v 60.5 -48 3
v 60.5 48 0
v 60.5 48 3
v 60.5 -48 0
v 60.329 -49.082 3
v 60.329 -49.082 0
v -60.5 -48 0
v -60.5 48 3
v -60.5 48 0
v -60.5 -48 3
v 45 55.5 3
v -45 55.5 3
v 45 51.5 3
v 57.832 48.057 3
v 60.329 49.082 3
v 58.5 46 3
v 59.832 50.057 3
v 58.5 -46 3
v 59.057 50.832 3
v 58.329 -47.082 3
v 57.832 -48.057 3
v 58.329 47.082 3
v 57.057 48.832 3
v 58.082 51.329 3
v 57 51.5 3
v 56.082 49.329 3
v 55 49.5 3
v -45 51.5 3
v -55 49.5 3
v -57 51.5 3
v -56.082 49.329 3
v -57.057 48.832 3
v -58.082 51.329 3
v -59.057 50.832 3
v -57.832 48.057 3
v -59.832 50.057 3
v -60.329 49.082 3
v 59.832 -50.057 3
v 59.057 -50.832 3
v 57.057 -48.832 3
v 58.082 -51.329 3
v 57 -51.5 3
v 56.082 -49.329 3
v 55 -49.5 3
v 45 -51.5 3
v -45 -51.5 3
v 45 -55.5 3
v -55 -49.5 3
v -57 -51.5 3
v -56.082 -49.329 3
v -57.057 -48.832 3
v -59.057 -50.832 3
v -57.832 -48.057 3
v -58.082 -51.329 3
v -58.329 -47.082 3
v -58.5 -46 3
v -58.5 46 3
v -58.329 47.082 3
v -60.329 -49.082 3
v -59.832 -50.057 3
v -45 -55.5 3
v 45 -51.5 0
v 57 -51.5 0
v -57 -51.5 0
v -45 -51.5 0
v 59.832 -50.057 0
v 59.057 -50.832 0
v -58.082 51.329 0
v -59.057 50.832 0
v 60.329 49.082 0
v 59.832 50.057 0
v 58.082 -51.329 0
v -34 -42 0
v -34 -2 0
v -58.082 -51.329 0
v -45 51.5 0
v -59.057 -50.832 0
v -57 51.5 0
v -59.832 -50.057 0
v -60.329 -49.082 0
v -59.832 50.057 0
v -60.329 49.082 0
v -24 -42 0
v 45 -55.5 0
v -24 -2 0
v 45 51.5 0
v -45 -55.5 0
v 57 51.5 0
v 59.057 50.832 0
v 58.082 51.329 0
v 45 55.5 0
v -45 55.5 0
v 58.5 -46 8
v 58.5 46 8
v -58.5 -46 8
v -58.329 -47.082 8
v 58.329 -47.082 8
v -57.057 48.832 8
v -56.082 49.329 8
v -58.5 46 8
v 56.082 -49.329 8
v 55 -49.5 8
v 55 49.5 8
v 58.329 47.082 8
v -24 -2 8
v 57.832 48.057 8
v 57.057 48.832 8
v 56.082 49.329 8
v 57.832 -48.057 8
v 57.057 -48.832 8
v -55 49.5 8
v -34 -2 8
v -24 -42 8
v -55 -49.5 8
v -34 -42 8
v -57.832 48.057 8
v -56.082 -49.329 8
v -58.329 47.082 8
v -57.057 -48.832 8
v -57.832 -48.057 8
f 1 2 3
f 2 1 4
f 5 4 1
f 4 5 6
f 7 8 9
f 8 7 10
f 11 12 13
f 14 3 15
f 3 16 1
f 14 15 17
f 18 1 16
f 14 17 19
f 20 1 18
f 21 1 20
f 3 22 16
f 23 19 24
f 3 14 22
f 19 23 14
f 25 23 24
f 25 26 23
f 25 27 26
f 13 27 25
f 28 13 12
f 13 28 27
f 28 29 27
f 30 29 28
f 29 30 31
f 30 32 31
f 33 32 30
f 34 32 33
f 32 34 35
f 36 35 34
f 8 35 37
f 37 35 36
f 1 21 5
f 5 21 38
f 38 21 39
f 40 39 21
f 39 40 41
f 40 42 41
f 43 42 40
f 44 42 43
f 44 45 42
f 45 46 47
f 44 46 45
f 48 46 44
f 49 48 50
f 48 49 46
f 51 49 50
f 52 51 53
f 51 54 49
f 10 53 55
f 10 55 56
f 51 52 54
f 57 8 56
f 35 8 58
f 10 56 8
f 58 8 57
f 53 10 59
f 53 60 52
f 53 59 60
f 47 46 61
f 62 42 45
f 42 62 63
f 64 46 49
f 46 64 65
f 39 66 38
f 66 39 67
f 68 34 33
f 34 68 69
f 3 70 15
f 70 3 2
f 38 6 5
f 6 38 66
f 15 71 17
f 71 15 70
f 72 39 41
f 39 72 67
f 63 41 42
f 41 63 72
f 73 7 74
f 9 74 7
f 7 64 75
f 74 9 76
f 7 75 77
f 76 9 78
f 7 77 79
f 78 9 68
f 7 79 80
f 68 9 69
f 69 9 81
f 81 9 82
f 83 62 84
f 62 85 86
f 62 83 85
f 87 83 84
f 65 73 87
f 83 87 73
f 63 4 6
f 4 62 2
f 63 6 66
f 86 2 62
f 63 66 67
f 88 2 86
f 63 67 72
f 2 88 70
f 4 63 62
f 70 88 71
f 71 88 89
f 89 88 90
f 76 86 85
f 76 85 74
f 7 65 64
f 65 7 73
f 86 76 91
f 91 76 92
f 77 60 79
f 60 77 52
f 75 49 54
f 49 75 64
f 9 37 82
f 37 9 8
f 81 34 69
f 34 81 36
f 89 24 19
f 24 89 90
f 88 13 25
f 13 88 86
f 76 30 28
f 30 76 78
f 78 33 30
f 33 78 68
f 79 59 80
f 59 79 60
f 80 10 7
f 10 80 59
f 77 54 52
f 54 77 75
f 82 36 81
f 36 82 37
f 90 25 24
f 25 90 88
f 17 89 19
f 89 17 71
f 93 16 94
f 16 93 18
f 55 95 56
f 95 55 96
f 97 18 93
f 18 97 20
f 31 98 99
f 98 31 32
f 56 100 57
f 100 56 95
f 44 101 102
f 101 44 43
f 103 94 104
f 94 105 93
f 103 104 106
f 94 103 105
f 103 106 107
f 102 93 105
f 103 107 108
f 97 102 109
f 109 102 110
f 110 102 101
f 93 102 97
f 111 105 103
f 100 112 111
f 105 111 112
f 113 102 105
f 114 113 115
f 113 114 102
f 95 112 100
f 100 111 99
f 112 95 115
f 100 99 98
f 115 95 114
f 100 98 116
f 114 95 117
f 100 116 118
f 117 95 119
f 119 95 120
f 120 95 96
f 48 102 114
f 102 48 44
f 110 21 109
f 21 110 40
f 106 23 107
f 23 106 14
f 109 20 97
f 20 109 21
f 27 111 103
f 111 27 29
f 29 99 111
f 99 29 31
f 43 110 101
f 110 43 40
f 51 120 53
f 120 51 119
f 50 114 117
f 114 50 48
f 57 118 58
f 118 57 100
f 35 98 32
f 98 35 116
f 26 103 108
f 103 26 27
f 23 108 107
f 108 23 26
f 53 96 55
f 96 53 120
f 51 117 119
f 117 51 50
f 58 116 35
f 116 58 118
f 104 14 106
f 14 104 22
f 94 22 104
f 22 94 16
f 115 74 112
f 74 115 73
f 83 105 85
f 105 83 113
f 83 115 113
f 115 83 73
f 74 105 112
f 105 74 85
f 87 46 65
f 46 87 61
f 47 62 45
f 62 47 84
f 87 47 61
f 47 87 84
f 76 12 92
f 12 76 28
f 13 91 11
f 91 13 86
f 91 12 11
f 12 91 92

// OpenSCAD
$fn = 20;

module Box (x, y, z) {
    BottoomWallThick = 4;
    
    translate ([0, 0, z / 2])
    minkowski () {
        cube ([x + BottoomWallThick, y + BottoomWallThick, z], center = true);
        cylinder (r = 3.5, h = 1);
    }
    
    translate([0, 0, 5])
    minkowski() {
        cube ([x, y, z*2], center = true);
        cylinder (r = 3.5, h = 1);
    }
}

module WallXZ (x, z, y,  hight, width, thickness, rotation) {
    if (rotation == 0) {
        translate([x, y, z])
        cube([width, thickness, hight], center = true);
    }
}

module Main () {
    difference () {
        Box (110, 92, 2);
        
        translate ([-29, -22, 0])
        cube ([10, 40, 20], center = true);
    }
    
    WallXZ (0, 1.5, -53, 3, 90, 5, 0);
    WallXZ (0, 1.5, 53, 3, 90, 5, 0);
}

Main ();
